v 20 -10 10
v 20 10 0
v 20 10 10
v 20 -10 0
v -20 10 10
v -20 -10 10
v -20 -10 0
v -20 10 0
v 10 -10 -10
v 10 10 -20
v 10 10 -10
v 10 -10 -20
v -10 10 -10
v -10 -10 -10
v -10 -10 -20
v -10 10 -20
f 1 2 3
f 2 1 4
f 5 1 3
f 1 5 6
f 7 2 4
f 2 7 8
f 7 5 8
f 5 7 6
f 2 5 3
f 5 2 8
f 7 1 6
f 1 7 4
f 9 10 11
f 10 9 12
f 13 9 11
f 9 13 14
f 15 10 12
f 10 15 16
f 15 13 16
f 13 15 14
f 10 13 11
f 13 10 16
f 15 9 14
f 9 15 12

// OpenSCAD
// Define dimensions for the components
large_block_length = 40;  // Length of the large rectangular block
large_block_width = 20;   // Width of the large rectangular block
large_block_height = 10;  // Height of the large rectangular block

small_block_length = 20;  // Length of the small rectangular block
small_block_width = 20;   // Width of the small rectangular block
small_block_height = 10;  // Height of the small rectangular block

// Define the positional relationship between components
gap_between_blocks = 5;  // Adjusted vertical gap between the two blocks

// Layer 1: Large rectangular block
module rectangular_block_large() {
    cube([large_block_length, large_block_width, large_block_height], center = true);
}

// Layer 2: Small rectangular block
module rectangular_block_small() {
    cube([small_block_length, small_block_width, small_block_height], center = true);
}

// Assemble the model
module assembly() {
    // Position the large block at the top, aligned horizontally
    translate([0, 0, large_block_height / 2])
        rectangular_block_large();

    // Position the small block below the large block, aligned horizontally
    translate([0, 0, -large_block_height / 2 - gap_between_blocks - small_block_height / 2])
        rectangular_block_small();
}

// Render the assembly
assembly();
